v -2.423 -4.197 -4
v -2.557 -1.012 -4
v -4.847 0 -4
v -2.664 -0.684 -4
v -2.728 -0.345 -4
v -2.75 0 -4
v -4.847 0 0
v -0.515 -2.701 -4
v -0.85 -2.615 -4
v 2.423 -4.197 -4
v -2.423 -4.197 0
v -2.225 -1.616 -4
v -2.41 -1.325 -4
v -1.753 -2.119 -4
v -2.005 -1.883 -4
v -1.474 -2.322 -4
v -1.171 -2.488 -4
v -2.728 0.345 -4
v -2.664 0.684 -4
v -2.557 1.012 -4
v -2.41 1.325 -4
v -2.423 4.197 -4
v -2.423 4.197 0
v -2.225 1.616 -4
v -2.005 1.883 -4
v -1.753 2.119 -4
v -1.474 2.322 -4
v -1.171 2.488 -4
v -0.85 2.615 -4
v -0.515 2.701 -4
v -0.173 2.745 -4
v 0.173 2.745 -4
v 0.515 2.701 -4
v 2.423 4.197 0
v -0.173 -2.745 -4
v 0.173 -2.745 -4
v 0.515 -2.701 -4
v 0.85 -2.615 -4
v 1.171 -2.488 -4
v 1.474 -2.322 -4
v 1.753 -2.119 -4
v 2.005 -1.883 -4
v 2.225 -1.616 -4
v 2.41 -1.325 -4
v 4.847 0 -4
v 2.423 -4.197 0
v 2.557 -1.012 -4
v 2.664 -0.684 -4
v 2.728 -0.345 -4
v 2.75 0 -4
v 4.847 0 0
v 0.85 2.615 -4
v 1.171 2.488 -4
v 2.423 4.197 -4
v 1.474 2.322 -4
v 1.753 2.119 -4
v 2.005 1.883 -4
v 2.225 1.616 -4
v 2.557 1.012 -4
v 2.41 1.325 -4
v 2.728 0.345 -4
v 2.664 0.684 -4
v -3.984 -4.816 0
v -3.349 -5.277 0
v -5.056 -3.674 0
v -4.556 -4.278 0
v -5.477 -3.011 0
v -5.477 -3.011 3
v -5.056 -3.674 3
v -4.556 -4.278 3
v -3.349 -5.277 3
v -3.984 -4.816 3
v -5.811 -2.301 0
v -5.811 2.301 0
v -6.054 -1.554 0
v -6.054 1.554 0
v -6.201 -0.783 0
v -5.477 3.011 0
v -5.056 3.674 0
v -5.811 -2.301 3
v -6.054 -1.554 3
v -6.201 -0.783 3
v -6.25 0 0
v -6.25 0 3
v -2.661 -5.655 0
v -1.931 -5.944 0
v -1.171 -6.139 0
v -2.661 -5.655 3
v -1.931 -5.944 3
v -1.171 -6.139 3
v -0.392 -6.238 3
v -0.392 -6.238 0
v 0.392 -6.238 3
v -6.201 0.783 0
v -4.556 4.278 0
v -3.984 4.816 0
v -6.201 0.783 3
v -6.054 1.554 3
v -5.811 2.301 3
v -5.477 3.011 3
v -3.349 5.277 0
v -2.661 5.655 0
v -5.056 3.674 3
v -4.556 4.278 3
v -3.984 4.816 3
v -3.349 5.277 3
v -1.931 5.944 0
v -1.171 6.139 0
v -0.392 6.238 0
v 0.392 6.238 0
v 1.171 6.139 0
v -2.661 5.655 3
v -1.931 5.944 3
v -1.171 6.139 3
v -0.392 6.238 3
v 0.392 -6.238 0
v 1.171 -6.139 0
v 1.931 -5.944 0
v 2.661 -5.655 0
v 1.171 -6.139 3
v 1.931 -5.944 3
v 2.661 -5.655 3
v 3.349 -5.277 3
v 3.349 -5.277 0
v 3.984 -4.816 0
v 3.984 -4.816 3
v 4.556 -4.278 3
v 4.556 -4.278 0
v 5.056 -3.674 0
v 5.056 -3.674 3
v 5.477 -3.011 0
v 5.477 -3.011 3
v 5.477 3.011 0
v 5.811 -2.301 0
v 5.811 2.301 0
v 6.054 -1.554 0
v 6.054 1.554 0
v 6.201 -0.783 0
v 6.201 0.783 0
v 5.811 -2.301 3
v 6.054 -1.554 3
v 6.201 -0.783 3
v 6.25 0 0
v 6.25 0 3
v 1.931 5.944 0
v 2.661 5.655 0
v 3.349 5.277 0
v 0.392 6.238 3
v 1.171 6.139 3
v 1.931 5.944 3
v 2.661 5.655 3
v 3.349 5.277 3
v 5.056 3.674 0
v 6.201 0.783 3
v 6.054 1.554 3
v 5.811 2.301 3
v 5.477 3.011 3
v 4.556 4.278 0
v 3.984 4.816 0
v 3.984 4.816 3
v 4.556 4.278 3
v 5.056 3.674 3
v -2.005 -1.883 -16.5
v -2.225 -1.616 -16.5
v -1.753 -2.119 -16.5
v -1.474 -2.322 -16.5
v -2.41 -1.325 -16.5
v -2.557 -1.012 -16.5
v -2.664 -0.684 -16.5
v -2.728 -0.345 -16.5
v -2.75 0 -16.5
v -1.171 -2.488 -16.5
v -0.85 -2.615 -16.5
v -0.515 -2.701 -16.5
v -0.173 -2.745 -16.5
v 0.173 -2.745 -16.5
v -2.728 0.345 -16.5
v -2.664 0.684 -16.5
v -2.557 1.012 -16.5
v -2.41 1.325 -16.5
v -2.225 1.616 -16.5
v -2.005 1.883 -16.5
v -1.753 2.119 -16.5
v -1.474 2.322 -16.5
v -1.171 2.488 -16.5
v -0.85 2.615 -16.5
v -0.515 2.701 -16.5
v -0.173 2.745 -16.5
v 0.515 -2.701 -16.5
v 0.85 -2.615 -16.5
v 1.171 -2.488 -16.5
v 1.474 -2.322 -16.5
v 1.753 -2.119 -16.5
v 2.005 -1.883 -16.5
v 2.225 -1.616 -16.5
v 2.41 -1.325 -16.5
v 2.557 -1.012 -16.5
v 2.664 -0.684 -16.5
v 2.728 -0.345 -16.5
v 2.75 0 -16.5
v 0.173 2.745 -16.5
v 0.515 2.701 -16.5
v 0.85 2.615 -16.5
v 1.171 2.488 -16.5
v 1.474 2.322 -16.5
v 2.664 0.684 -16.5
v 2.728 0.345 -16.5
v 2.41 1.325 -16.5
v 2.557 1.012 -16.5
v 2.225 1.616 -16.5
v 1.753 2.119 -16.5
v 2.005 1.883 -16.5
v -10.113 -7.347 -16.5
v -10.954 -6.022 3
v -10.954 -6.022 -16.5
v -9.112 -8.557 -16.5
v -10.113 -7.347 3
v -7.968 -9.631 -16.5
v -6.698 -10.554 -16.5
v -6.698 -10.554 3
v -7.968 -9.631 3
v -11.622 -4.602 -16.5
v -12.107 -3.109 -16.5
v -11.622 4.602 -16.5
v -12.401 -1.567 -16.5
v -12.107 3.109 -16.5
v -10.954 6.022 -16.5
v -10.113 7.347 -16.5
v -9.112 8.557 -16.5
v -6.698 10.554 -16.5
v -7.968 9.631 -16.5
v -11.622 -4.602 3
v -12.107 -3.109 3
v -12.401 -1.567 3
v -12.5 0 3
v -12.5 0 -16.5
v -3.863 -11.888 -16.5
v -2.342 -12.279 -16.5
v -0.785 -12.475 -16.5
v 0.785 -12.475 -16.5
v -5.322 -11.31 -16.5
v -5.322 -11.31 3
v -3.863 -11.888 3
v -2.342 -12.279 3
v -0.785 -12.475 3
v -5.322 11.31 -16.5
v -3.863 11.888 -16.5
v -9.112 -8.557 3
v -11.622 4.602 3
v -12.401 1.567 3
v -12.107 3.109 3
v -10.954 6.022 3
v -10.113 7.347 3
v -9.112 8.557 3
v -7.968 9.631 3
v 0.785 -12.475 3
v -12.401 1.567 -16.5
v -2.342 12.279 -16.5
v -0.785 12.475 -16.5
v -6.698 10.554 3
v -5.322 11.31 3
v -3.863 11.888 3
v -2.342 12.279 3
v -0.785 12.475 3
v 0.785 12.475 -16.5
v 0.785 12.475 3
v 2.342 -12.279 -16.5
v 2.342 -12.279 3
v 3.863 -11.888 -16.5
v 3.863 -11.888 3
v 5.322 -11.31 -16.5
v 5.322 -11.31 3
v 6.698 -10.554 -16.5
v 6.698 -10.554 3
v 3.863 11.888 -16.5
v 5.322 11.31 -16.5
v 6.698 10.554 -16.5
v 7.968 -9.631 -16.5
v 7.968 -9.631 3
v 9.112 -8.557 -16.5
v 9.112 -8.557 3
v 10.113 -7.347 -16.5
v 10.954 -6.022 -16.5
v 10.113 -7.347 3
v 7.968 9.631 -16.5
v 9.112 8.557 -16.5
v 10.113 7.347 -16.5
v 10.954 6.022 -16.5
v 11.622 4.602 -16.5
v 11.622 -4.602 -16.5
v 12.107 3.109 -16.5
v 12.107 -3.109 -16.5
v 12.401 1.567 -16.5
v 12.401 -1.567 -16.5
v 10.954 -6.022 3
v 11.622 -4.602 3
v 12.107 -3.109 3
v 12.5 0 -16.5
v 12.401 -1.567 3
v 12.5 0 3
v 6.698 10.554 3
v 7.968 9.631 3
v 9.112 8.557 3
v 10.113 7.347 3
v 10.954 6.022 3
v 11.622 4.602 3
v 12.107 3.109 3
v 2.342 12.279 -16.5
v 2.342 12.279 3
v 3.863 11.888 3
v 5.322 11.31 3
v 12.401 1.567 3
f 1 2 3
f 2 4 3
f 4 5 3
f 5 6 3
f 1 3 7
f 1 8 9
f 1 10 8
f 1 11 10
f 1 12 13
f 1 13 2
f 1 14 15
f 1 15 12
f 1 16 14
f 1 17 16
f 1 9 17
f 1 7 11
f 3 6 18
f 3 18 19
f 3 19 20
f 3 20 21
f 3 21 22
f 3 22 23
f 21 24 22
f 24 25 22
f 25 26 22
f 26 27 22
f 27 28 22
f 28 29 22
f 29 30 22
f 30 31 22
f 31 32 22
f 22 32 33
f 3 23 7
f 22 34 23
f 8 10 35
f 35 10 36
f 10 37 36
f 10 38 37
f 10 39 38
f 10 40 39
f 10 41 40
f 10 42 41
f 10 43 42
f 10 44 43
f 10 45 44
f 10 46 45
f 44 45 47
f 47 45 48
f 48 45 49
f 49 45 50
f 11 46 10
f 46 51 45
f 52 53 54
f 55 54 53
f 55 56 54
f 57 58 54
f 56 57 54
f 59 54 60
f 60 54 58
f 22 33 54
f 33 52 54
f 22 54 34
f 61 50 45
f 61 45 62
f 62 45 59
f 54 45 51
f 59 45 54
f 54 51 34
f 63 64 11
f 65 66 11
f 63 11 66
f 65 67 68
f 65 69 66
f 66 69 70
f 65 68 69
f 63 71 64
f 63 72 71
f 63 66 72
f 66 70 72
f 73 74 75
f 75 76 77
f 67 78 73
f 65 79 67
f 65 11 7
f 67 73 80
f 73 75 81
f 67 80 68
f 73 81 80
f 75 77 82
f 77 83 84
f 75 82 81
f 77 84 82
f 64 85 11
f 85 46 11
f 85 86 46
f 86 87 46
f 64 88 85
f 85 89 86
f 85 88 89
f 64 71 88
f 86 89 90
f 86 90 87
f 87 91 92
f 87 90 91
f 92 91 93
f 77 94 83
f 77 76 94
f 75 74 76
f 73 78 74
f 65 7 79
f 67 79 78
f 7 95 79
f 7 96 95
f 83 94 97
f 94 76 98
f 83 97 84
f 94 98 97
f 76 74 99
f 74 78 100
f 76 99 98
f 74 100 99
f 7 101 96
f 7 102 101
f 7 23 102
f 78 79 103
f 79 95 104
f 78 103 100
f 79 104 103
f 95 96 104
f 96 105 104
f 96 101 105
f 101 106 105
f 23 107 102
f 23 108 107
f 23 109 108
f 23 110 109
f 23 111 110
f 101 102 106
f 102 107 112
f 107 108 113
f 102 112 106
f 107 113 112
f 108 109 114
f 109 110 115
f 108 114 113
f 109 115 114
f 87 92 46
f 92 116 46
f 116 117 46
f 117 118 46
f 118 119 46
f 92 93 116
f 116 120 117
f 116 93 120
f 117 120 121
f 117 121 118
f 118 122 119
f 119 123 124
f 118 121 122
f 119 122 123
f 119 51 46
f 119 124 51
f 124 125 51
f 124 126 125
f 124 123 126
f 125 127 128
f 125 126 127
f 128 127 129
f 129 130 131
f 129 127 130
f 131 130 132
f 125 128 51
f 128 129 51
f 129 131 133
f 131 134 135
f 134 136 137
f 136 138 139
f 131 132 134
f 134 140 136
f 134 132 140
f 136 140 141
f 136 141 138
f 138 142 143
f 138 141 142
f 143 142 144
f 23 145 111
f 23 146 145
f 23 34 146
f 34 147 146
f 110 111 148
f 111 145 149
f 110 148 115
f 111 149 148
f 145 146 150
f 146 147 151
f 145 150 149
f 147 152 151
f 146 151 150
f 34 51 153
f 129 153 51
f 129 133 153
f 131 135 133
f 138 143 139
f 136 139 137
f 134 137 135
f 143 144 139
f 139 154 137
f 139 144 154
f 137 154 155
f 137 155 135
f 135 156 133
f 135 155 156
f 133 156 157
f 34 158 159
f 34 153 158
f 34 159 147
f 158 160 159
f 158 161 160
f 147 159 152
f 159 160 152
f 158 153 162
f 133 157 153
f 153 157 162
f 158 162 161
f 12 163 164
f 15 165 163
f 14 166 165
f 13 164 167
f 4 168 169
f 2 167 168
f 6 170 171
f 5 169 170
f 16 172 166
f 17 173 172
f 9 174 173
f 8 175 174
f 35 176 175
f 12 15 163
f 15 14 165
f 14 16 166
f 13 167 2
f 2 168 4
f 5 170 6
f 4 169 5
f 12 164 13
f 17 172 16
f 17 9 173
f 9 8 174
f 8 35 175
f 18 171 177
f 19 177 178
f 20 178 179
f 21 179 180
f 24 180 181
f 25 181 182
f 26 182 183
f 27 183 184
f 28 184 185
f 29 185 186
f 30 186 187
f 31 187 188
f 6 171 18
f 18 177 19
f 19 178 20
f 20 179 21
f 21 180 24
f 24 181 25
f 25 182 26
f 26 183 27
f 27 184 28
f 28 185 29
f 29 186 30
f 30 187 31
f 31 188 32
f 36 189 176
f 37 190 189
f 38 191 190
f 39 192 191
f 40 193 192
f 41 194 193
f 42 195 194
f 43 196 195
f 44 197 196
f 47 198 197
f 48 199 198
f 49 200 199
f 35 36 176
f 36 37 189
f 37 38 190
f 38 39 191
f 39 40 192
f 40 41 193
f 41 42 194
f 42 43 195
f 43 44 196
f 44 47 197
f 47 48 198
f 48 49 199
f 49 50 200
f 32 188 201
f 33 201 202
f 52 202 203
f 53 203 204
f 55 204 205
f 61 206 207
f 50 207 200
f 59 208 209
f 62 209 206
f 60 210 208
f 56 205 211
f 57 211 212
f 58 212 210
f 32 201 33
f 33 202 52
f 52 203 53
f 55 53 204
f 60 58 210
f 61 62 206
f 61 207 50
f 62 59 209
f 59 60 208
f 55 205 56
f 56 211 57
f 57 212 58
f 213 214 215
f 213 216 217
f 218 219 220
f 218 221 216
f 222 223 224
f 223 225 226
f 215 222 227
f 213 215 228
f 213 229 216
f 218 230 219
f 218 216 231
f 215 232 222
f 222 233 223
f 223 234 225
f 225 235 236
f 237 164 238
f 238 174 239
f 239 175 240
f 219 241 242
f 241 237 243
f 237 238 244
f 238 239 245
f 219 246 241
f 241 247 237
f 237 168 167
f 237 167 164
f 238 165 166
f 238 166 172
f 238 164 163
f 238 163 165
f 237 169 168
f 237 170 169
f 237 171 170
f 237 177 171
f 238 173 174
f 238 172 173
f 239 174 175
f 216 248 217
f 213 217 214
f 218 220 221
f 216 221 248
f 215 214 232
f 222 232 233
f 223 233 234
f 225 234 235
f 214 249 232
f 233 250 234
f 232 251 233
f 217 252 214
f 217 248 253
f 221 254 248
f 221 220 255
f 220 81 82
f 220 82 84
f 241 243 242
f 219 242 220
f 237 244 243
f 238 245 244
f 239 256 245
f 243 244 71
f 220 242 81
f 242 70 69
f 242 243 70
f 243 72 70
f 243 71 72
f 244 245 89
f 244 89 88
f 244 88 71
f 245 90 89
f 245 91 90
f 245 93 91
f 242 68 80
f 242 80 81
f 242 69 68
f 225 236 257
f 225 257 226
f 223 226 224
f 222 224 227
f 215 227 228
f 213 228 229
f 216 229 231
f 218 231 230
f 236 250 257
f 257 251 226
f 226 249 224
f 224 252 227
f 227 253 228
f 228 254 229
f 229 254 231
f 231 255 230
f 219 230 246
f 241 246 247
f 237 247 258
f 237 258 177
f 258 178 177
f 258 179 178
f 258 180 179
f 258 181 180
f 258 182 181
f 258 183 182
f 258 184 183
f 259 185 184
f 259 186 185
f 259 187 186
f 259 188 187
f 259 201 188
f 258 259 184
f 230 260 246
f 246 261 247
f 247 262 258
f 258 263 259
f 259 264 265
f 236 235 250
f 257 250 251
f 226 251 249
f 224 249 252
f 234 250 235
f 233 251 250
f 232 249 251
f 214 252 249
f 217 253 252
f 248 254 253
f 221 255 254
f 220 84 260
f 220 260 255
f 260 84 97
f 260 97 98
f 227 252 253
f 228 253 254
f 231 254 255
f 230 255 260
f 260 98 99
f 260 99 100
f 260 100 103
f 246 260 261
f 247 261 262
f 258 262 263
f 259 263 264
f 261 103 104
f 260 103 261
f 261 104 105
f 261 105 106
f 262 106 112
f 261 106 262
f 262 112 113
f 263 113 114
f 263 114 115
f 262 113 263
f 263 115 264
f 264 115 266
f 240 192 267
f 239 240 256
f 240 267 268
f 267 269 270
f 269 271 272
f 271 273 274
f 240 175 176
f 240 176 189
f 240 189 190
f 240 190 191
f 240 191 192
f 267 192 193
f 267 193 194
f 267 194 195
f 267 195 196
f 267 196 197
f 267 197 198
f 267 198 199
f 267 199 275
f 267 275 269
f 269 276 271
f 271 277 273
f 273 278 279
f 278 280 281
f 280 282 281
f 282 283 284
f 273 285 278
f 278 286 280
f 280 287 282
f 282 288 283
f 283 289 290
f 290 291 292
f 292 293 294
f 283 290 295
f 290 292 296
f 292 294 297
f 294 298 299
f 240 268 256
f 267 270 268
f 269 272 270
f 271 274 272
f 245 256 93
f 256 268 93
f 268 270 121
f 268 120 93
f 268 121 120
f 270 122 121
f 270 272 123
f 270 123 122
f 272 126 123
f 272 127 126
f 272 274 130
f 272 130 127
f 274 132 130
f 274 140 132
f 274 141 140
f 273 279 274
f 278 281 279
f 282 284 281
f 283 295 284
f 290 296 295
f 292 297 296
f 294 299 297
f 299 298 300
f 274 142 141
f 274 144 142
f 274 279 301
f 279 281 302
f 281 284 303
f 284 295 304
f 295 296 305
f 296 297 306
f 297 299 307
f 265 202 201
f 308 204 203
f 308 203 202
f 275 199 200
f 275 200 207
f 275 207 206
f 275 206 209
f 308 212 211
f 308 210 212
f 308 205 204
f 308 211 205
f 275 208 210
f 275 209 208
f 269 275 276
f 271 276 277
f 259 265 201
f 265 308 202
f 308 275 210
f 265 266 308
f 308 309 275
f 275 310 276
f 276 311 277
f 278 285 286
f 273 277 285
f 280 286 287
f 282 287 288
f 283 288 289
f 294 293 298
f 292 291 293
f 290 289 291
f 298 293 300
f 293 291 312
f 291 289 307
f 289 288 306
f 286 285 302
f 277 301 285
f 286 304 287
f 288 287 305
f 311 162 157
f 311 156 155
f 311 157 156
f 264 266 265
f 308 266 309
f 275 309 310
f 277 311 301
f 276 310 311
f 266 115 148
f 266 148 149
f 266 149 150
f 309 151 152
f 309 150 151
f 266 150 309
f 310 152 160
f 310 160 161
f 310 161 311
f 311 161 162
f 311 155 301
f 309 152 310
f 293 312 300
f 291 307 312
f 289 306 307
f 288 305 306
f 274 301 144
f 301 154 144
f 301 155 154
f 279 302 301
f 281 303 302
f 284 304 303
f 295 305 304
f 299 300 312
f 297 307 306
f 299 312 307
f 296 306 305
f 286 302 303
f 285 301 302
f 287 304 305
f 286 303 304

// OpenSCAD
$fn = 50;


difference() {
	union() {
		translate(v = [0, 0, -16.5000000000]) {
			cylinder(h = 19.5000000000, r = 12.5000000000);
		}
	}
	union() {
		translate(v = [0, 0, 0]) {
			rotate(a = [0, 0, 0]) {
				difference() {
					union() {
						translate(v = [0, 0, -4]) {
							linear_extrude(height = 4) {
								polygon(points = [[4.8468000000, 0.0000000000], [2.4234000000, 4.1974519271], [-2.4234000000, 4.1974519271], [-4.8468000000, 0.0000000000], [-2.4234000000, -4.1974519271], [2.4234000000, -4.1974519271]]);
							}
						}
					}
					union();
				}
			}
		}
		#cylinder(h = 3, r = 6.2500000000);
		#translate(v = [0, 0, -100.0000000000]) {
			cylinder(h = 200, r = 2.7500000000);
		}
	}
}
